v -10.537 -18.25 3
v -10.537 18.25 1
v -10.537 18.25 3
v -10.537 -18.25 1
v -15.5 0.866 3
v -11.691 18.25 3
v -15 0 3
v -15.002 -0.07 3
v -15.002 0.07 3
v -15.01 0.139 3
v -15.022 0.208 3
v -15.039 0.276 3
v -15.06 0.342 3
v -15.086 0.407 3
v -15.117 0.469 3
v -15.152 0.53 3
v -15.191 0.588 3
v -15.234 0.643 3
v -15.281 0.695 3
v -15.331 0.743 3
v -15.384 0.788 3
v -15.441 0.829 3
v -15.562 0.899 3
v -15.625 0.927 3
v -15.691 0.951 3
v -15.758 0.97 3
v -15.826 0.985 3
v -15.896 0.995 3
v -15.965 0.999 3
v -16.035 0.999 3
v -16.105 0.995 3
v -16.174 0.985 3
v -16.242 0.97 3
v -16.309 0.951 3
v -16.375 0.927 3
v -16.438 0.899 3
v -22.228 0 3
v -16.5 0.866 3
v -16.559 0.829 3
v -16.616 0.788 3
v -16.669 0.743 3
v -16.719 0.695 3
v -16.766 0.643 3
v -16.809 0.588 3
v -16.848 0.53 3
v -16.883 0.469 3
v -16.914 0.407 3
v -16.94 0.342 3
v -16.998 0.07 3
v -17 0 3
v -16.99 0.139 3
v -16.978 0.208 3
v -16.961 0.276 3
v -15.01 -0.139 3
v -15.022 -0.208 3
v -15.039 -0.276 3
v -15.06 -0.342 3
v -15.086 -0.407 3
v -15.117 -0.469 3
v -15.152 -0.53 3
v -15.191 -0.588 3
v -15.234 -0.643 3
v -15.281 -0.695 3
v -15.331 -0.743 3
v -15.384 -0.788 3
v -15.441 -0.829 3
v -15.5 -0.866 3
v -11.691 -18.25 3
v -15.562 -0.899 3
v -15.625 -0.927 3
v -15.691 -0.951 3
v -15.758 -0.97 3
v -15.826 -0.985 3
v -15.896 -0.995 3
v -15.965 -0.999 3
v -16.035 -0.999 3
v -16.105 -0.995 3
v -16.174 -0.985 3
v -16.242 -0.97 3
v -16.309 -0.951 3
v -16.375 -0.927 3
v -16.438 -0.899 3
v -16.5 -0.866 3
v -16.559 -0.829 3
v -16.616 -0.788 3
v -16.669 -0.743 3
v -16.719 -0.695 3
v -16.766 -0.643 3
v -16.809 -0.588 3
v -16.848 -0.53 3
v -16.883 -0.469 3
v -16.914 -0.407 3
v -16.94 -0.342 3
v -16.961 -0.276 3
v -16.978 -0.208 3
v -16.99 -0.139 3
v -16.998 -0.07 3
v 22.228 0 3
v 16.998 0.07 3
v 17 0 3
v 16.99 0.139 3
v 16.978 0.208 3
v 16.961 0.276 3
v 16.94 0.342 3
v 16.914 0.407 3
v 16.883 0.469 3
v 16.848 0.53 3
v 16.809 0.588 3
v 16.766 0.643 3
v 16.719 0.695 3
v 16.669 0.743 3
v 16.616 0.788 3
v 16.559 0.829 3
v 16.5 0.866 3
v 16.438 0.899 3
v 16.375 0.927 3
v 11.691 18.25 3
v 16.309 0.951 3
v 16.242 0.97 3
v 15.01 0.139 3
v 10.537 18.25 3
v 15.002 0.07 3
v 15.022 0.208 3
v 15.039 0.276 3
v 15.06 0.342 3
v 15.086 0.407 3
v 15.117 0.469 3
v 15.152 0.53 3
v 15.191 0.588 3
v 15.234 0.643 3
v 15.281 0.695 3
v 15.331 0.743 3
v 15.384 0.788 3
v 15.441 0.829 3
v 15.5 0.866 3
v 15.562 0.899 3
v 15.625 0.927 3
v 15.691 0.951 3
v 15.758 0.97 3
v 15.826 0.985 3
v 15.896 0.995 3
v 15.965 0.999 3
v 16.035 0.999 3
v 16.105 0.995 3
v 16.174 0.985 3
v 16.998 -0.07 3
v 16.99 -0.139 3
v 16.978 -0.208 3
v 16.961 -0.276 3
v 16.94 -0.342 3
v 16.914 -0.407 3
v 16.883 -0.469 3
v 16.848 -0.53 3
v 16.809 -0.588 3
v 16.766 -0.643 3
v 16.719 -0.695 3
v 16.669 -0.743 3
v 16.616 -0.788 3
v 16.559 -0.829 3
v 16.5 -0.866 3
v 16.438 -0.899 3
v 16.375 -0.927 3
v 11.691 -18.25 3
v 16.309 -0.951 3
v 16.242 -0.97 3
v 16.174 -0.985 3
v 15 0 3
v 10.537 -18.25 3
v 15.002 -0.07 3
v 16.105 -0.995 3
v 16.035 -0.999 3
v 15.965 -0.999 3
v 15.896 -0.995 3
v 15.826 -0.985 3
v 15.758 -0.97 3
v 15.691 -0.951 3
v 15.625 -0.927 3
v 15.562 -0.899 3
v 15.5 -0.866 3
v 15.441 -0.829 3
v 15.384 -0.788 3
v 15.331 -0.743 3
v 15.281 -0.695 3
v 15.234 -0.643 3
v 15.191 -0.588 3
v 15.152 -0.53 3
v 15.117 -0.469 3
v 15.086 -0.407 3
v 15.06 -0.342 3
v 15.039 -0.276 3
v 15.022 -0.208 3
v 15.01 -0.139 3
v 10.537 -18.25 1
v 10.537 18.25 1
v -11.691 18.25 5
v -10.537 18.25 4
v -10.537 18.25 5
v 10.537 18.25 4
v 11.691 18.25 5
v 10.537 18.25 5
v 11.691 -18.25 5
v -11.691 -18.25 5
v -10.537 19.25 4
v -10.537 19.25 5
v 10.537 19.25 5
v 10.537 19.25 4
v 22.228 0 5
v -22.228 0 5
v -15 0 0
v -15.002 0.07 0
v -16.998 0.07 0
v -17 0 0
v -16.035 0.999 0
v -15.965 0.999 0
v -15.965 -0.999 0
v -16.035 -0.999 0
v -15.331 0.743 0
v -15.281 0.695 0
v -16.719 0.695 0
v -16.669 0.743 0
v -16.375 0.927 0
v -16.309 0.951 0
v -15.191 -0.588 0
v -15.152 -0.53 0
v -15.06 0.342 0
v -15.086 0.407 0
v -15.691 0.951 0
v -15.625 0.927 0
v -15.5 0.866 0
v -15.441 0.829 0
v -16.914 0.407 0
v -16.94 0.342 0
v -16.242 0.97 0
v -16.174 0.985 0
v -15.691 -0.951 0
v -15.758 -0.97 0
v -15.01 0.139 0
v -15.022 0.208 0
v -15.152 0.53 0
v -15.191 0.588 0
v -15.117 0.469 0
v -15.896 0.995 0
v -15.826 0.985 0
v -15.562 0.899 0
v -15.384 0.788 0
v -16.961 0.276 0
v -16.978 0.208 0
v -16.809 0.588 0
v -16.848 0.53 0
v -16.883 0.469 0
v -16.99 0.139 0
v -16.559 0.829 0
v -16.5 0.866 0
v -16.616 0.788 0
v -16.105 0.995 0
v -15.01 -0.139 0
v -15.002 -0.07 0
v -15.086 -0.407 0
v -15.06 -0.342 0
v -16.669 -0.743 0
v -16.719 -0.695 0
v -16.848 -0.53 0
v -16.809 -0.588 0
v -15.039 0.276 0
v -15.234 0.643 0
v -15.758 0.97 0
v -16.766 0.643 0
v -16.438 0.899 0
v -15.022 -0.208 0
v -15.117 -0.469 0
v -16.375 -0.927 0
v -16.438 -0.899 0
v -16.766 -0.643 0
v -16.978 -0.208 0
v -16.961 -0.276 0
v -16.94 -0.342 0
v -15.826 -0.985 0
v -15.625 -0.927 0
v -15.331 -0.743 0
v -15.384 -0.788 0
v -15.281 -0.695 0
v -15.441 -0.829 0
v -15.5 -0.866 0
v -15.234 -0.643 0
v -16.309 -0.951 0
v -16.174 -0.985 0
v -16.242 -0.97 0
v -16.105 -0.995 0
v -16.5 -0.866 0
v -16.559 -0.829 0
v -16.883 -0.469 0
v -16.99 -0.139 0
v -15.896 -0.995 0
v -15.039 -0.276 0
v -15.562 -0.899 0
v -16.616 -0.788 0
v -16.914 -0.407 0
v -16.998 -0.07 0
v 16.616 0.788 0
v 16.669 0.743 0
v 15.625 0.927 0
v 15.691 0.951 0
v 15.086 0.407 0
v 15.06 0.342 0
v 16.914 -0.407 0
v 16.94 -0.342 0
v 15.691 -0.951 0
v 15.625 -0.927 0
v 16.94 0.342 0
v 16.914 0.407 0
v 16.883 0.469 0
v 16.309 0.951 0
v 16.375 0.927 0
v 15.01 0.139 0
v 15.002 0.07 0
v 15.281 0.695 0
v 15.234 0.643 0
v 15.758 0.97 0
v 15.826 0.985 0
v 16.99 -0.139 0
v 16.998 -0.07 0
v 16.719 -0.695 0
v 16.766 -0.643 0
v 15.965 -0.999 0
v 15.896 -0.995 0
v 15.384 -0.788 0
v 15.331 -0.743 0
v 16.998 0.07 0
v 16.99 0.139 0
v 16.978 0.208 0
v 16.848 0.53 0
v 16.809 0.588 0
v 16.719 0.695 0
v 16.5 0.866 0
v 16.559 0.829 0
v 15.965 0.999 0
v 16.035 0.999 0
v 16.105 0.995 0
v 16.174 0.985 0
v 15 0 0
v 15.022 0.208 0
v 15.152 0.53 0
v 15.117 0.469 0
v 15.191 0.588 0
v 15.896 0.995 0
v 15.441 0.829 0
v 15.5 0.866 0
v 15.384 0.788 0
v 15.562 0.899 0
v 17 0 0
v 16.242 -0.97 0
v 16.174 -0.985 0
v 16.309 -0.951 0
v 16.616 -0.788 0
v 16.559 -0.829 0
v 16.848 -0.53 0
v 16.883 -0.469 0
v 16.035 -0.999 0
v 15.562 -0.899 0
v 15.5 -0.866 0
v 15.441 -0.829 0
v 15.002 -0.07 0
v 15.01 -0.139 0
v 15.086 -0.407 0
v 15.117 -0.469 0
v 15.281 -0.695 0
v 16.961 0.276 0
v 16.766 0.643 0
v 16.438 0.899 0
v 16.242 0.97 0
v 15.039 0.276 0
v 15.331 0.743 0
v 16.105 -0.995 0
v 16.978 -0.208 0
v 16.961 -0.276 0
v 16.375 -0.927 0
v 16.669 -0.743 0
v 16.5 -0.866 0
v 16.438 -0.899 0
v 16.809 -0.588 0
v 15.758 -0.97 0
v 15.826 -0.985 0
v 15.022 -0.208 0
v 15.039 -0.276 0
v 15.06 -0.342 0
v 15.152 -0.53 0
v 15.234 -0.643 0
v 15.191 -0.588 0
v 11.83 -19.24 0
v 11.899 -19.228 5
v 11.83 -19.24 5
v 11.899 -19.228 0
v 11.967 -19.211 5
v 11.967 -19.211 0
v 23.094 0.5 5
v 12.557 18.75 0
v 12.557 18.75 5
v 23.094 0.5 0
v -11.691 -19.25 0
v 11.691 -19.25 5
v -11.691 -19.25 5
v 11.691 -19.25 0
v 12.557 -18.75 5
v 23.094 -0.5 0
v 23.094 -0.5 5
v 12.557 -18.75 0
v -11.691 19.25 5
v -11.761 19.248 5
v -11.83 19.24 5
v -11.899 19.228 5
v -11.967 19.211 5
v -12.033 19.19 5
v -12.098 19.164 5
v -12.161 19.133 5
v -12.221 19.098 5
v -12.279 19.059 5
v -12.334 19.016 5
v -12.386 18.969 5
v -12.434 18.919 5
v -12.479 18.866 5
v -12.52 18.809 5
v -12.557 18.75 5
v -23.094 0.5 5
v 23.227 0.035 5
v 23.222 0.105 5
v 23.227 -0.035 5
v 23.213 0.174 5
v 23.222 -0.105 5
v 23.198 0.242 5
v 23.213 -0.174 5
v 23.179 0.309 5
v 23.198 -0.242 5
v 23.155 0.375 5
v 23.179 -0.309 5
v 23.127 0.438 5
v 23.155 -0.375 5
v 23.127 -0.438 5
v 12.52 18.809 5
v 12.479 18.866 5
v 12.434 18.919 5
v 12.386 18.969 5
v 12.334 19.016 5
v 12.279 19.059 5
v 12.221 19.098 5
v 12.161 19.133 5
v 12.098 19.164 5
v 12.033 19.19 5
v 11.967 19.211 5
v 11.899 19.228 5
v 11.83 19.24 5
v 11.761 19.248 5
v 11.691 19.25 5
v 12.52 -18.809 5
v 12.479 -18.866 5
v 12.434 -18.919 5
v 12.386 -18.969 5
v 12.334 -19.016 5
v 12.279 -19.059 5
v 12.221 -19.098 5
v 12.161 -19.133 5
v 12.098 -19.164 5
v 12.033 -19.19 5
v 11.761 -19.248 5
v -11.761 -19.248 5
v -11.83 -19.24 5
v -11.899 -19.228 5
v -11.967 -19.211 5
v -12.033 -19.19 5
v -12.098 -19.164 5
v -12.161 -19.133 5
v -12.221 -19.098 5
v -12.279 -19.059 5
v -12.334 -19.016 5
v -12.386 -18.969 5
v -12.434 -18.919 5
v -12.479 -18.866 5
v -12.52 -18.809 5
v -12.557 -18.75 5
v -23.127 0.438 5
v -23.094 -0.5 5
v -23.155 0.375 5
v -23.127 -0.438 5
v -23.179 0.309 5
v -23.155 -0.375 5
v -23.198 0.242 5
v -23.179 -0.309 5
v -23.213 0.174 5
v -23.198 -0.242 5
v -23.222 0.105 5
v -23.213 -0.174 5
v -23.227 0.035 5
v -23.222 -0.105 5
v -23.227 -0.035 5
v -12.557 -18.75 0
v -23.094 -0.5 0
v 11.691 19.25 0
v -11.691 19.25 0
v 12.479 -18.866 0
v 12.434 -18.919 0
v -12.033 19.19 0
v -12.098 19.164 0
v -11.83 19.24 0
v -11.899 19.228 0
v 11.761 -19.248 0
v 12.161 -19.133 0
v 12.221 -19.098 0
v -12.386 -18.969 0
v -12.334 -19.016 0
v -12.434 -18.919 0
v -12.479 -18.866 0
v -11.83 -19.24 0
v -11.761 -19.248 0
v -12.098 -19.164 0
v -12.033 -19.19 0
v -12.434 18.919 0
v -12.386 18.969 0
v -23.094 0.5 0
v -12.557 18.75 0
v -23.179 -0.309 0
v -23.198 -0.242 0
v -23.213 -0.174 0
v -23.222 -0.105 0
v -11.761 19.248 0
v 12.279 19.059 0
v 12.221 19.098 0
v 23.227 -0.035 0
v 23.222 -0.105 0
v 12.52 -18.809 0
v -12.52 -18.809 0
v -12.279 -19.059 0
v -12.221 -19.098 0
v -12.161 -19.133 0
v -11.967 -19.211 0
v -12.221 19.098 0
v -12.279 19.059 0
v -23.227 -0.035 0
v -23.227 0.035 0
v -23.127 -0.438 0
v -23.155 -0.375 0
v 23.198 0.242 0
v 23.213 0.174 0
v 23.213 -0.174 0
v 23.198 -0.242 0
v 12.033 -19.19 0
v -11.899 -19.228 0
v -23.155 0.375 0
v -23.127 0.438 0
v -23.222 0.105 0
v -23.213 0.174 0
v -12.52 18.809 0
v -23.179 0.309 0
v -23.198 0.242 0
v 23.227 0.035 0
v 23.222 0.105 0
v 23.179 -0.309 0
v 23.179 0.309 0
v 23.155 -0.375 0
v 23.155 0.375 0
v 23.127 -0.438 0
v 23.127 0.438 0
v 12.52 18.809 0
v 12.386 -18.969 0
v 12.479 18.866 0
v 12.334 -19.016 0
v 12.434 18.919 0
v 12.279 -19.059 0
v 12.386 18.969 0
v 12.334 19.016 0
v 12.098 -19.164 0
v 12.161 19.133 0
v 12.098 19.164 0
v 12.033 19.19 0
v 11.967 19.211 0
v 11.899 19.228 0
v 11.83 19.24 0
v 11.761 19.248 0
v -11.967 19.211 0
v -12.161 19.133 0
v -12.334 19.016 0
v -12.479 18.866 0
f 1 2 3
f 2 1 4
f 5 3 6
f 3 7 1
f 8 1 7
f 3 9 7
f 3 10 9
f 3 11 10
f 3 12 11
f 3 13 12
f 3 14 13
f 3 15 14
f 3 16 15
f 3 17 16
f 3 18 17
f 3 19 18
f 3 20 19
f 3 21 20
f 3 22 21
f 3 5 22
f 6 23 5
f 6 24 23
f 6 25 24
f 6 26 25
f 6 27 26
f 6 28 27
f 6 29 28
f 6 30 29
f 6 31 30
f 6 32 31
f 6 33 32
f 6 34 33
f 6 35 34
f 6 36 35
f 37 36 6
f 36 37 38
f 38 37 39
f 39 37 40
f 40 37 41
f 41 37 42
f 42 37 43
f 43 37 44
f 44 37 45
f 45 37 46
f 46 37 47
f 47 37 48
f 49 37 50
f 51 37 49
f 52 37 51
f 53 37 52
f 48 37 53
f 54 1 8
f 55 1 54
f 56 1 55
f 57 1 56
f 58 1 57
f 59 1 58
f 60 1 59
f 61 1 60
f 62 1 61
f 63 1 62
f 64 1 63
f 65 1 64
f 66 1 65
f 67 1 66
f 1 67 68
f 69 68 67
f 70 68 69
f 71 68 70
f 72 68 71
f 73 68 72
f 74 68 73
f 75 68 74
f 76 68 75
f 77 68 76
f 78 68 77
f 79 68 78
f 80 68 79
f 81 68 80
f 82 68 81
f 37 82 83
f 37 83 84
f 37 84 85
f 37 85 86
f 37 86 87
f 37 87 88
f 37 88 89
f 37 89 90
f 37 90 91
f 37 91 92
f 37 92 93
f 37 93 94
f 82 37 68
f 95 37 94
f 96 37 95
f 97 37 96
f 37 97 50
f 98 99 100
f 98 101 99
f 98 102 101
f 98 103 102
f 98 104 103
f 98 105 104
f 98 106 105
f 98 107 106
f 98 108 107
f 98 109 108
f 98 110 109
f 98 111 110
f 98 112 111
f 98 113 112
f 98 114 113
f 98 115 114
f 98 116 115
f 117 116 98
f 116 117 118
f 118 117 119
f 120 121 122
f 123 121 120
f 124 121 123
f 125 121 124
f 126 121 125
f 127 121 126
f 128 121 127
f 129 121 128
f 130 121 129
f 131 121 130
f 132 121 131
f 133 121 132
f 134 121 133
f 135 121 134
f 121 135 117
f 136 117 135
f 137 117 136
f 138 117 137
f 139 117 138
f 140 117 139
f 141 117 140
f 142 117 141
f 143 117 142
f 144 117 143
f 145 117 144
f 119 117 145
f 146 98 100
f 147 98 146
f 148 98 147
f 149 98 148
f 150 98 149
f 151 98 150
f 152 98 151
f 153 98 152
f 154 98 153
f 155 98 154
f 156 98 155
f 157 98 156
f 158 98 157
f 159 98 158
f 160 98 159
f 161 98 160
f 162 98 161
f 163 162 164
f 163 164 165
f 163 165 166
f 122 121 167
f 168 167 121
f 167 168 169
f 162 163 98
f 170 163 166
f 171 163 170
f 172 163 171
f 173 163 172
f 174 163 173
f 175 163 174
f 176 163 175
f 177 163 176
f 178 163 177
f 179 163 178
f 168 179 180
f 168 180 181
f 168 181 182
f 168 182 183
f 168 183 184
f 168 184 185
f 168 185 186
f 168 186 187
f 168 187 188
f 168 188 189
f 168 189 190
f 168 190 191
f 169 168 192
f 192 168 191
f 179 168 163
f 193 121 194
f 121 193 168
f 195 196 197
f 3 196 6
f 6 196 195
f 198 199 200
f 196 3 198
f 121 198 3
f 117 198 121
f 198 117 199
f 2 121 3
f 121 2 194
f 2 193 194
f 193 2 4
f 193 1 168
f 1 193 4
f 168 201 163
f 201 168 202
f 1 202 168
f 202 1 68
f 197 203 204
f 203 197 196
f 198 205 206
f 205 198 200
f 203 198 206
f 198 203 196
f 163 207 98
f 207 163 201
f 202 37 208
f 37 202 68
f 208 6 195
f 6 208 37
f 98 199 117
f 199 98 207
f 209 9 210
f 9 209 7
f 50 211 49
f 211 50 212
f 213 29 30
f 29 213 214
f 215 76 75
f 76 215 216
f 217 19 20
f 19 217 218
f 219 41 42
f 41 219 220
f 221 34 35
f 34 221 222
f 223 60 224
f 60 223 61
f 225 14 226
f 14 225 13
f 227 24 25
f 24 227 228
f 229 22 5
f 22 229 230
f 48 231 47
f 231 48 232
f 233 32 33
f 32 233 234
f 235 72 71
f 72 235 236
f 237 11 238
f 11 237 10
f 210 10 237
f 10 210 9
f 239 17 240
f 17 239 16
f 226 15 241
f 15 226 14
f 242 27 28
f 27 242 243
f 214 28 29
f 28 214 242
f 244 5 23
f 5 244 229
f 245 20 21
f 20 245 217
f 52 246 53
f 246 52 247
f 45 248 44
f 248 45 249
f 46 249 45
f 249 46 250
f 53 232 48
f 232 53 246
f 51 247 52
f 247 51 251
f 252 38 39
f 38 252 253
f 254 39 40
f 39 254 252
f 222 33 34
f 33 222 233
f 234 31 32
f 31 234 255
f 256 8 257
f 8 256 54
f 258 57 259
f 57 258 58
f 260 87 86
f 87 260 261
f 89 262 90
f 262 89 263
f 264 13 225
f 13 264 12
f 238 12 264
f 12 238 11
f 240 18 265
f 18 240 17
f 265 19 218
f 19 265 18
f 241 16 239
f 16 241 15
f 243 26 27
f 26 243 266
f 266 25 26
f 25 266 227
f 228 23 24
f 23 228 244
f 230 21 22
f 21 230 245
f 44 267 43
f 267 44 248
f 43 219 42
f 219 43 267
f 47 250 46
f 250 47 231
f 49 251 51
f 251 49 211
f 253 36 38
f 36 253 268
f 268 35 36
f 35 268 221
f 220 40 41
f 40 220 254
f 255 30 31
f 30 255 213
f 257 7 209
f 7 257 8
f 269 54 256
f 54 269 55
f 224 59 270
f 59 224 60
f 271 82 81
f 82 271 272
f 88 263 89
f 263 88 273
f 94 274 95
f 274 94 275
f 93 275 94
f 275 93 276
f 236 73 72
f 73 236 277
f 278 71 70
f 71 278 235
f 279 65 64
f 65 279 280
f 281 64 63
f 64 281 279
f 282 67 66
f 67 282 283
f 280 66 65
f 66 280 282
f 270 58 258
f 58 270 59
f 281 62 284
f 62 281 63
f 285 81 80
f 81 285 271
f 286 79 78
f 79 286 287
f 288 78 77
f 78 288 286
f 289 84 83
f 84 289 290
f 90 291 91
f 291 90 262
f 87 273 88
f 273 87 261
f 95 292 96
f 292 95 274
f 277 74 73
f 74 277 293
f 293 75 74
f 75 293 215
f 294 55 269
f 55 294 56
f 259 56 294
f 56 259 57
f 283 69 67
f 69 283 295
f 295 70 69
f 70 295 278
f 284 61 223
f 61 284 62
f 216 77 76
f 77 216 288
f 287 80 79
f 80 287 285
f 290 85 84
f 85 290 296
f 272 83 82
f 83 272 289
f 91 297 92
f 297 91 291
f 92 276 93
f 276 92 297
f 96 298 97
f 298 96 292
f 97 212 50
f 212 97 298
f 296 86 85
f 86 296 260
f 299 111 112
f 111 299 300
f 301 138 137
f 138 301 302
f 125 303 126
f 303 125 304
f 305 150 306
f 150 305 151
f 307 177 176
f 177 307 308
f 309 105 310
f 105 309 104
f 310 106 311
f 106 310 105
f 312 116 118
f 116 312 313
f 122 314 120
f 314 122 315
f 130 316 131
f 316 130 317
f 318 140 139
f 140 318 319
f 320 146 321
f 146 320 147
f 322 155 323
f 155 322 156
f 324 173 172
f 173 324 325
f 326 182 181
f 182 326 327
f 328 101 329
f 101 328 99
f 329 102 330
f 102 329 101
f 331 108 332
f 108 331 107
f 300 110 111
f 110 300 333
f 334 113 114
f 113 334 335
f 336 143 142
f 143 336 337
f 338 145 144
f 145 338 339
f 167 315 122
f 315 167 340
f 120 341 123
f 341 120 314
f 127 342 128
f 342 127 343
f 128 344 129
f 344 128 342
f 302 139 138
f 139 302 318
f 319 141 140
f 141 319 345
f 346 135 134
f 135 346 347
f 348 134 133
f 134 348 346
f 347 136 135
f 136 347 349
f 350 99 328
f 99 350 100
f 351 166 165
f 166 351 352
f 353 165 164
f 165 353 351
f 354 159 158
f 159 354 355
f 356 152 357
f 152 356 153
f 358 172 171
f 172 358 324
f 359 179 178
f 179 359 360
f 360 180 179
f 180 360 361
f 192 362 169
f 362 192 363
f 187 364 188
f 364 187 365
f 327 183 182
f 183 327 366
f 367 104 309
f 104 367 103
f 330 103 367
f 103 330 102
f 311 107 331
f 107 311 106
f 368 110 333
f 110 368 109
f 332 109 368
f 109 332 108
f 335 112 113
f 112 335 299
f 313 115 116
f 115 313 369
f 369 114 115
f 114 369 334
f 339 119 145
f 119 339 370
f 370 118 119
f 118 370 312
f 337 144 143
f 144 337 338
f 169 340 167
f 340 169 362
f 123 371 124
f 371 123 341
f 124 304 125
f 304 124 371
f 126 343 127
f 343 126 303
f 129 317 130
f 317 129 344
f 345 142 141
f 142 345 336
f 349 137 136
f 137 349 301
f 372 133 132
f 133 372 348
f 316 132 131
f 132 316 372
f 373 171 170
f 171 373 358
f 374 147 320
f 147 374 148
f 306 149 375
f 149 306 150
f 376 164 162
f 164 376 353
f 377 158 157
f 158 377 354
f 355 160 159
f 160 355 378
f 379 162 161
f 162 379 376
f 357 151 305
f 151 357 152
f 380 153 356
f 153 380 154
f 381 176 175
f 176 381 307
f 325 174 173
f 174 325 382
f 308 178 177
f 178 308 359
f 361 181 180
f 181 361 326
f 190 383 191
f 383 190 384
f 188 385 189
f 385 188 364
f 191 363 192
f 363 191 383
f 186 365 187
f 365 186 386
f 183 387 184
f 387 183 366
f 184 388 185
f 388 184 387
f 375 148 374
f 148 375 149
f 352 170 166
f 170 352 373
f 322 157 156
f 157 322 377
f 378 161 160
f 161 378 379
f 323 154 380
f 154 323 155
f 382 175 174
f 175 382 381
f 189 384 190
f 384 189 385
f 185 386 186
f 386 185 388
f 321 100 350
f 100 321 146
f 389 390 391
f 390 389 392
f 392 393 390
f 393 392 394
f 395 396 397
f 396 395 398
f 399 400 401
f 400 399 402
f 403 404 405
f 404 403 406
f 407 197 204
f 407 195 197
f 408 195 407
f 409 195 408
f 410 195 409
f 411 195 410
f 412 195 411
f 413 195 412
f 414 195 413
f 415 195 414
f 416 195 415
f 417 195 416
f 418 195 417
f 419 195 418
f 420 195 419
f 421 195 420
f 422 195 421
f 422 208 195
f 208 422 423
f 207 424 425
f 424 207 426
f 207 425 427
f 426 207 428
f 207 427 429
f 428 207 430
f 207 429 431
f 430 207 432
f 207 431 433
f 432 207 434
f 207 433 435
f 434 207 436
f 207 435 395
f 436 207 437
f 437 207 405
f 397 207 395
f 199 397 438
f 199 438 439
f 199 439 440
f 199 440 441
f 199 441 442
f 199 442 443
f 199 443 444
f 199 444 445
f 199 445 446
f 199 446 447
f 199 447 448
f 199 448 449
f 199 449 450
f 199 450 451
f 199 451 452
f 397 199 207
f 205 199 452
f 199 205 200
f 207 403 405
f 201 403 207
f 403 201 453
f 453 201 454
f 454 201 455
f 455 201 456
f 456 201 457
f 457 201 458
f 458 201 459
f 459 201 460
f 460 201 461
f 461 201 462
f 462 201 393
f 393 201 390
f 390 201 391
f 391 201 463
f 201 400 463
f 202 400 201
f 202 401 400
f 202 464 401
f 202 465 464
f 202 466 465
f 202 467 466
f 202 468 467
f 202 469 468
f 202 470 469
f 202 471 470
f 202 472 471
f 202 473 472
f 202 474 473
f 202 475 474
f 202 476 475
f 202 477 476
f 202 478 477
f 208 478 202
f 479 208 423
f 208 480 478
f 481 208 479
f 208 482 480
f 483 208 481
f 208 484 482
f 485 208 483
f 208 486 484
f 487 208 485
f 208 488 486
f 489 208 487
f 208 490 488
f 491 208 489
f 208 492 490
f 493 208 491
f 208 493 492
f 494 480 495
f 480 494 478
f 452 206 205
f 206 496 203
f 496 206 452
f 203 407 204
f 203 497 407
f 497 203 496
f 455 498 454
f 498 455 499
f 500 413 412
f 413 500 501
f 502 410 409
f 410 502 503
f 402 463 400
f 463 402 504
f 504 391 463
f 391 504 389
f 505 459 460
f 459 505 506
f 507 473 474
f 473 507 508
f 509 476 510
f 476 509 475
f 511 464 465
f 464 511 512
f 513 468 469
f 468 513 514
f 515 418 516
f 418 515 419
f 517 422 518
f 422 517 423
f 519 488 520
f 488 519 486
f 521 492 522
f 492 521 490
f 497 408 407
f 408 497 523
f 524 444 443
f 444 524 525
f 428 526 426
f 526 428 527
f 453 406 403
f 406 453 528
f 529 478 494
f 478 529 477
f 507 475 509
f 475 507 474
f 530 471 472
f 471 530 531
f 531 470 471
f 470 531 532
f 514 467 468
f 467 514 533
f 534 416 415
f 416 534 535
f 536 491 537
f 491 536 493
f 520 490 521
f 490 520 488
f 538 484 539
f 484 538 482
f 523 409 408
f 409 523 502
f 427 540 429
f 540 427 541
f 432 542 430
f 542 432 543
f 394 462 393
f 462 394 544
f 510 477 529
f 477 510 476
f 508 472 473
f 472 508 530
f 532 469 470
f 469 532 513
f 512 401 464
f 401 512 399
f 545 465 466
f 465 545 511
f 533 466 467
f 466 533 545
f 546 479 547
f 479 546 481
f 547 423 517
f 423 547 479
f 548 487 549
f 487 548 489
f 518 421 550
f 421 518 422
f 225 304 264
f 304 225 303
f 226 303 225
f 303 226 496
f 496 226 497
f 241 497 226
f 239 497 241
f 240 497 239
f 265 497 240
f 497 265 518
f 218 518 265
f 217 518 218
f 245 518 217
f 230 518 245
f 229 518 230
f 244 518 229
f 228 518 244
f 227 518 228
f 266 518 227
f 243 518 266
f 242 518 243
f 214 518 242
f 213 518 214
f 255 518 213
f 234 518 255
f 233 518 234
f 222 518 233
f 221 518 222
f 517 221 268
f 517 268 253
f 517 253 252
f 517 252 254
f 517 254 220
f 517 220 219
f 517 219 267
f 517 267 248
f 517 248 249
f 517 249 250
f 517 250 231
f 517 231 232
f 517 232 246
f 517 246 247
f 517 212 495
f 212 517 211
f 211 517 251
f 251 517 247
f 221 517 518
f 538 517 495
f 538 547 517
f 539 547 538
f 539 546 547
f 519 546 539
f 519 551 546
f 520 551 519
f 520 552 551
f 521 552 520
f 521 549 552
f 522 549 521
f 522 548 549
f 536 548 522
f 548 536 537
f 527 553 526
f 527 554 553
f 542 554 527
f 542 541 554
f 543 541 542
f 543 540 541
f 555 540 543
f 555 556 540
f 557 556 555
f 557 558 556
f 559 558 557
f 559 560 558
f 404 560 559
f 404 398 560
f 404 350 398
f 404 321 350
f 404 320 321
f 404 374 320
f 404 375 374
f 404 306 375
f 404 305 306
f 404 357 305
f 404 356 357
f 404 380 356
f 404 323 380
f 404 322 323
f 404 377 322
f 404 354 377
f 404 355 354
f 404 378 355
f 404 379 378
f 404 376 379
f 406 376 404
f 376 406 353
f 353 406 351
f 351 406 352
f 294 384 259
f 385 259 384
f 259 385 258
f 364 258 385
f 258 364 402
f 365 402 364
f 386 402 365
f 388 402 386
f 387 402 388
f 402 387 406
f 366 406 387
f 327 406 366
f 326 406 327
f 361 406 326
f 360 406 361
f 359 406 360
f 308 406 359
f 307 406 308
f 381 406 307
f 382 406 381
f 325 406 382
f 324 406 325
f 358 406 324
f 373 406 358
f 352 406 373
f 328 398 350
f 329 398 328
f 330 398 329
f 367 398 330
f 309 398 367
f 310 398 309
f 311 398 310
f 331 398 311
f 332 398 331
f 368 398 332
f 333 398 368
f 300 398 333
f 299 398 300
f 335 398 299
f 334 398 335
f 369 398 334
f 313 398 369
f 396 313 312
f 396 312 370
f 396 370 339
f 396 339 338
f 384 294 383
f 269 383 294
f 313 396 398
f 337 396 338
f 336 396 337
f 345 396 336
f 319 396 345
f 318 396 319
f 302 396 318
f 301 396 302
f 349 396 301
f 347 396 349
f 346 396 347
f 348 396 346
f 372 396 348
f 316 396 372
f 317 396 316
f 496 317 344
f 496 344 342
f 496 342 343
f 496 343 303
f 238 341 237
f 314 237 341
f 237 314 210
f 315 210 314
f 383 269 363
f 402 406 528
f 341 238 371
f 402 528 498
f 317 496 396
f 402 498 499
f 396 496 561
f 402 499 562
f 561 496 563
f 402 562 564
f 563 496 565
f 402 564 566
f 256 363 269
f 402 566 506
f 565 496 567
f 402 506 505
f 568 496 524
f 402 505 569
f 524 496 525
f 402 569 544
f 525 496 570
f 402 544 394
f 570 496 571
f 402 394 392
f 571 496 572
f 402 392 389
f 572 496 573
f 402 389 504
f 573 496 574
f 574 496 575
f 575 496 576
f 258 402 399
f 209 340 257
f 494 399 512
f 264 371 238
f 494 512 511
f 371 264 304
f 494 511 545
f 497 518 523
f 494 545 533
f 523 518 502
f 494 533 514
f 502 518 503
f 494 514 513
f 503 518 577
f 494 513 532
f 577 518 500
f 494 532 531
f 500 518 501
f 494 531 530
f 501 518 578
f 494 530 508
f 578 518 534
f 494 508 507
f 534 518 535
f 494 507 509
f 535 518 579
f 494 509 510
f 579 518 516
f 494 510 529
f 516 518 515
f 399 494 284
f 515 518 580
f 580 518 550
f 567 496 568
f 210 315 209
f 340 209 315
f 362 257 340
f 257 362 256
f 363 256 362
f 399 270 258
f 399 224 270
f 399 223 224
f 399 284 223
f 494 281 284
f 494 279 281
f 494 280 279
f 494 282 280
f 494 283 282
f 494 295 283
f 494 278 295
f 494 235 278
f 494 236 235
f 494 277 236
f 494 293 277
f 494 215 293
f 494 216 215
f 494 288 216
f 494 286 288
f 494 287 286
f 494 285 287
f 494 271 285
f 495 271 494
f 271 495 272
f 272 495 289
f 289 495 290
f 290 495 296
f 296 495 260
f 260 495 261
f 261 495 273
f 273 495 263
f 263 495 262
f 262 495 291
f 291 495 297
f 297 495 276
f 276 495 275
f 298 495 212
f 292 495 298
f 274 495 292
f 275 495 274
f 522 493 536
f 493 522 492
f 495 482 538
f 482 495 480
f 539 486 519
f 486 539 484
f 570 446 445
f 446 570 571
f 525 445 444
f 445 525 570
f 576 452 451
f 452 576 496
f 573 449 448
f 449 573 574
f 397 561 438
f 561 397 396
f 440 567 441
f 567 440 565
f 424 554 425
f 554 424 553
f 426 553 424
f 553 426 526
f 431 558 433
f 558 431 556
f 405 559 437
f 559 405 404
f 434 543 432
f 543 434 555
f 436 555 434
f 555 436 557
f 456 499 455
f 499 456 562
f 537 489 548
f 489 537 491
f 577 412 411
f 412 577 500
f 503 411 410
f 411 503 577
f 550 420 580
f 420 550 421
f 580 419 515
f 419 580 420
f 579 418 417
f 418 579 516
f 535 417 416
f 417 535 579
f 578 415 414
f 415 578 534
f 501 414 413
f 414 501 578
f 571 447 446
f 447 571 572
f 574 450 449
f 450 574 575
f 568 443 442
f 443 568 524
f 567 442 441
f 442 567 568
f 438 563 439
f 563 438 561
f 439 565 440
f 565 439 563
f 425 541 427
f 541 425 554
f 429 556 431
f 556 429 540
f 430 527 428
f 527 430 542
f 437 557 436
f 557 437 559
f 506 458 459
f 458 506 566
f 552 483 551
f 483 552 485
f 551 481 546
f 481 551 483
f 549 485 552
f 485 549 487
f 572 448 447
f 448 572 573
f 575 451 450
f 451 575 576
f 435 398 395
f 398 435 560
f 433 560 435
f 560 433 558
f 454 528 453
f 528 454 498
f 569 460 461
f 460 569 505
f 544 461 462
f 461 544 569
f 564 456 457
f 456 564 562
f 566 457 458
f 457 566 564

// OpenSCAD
// zum module 1
// hexagonal module

$fn = 90;
drill = 2;

module holes() {
    d = 32;
    translate( [ -d/2, 0, -1 ] ) cylinder( d = drill, h = 11 );
    translate( [ d/2, 0, -1 ] ) cylinder( d = drill, h = 11 );
}

module hexagon( ) {
    h = 36.5;
    b = 38.5;
    
    intersection() {
        square( [ 100, h ], center = true );
        rotate( 60 ) square( [ 100, b ], center = true );
        rotate( -60 ) square( [ 100, b ], center = true );
    }
    
}

module zum_hexmodule_clearance( h = 36.5 ) {
    ri = h/2;
    ro = ri / ( 0.5 * sqrt(3) );
    translate( [ -ro/2, -ri, -2 ] ) cube( [ ro, ri * 2, 2 ] );
    translate( [ -ro/2, ri/2, 1 ] ) cube( [ ro, ri, 8 ] );
    
}

module zum_hexmodule() {
    difference() {
        linear_extrude( height = 5 ) offset( r = 1 ) hexagon();
        translate( [ 0, 0, 3 ] ) {
            linear_extrude( height = 5 ) hexagon();
            zum_hexmodule_clearance();
        }
        holes();
    }
}

zum_hexmodule();
